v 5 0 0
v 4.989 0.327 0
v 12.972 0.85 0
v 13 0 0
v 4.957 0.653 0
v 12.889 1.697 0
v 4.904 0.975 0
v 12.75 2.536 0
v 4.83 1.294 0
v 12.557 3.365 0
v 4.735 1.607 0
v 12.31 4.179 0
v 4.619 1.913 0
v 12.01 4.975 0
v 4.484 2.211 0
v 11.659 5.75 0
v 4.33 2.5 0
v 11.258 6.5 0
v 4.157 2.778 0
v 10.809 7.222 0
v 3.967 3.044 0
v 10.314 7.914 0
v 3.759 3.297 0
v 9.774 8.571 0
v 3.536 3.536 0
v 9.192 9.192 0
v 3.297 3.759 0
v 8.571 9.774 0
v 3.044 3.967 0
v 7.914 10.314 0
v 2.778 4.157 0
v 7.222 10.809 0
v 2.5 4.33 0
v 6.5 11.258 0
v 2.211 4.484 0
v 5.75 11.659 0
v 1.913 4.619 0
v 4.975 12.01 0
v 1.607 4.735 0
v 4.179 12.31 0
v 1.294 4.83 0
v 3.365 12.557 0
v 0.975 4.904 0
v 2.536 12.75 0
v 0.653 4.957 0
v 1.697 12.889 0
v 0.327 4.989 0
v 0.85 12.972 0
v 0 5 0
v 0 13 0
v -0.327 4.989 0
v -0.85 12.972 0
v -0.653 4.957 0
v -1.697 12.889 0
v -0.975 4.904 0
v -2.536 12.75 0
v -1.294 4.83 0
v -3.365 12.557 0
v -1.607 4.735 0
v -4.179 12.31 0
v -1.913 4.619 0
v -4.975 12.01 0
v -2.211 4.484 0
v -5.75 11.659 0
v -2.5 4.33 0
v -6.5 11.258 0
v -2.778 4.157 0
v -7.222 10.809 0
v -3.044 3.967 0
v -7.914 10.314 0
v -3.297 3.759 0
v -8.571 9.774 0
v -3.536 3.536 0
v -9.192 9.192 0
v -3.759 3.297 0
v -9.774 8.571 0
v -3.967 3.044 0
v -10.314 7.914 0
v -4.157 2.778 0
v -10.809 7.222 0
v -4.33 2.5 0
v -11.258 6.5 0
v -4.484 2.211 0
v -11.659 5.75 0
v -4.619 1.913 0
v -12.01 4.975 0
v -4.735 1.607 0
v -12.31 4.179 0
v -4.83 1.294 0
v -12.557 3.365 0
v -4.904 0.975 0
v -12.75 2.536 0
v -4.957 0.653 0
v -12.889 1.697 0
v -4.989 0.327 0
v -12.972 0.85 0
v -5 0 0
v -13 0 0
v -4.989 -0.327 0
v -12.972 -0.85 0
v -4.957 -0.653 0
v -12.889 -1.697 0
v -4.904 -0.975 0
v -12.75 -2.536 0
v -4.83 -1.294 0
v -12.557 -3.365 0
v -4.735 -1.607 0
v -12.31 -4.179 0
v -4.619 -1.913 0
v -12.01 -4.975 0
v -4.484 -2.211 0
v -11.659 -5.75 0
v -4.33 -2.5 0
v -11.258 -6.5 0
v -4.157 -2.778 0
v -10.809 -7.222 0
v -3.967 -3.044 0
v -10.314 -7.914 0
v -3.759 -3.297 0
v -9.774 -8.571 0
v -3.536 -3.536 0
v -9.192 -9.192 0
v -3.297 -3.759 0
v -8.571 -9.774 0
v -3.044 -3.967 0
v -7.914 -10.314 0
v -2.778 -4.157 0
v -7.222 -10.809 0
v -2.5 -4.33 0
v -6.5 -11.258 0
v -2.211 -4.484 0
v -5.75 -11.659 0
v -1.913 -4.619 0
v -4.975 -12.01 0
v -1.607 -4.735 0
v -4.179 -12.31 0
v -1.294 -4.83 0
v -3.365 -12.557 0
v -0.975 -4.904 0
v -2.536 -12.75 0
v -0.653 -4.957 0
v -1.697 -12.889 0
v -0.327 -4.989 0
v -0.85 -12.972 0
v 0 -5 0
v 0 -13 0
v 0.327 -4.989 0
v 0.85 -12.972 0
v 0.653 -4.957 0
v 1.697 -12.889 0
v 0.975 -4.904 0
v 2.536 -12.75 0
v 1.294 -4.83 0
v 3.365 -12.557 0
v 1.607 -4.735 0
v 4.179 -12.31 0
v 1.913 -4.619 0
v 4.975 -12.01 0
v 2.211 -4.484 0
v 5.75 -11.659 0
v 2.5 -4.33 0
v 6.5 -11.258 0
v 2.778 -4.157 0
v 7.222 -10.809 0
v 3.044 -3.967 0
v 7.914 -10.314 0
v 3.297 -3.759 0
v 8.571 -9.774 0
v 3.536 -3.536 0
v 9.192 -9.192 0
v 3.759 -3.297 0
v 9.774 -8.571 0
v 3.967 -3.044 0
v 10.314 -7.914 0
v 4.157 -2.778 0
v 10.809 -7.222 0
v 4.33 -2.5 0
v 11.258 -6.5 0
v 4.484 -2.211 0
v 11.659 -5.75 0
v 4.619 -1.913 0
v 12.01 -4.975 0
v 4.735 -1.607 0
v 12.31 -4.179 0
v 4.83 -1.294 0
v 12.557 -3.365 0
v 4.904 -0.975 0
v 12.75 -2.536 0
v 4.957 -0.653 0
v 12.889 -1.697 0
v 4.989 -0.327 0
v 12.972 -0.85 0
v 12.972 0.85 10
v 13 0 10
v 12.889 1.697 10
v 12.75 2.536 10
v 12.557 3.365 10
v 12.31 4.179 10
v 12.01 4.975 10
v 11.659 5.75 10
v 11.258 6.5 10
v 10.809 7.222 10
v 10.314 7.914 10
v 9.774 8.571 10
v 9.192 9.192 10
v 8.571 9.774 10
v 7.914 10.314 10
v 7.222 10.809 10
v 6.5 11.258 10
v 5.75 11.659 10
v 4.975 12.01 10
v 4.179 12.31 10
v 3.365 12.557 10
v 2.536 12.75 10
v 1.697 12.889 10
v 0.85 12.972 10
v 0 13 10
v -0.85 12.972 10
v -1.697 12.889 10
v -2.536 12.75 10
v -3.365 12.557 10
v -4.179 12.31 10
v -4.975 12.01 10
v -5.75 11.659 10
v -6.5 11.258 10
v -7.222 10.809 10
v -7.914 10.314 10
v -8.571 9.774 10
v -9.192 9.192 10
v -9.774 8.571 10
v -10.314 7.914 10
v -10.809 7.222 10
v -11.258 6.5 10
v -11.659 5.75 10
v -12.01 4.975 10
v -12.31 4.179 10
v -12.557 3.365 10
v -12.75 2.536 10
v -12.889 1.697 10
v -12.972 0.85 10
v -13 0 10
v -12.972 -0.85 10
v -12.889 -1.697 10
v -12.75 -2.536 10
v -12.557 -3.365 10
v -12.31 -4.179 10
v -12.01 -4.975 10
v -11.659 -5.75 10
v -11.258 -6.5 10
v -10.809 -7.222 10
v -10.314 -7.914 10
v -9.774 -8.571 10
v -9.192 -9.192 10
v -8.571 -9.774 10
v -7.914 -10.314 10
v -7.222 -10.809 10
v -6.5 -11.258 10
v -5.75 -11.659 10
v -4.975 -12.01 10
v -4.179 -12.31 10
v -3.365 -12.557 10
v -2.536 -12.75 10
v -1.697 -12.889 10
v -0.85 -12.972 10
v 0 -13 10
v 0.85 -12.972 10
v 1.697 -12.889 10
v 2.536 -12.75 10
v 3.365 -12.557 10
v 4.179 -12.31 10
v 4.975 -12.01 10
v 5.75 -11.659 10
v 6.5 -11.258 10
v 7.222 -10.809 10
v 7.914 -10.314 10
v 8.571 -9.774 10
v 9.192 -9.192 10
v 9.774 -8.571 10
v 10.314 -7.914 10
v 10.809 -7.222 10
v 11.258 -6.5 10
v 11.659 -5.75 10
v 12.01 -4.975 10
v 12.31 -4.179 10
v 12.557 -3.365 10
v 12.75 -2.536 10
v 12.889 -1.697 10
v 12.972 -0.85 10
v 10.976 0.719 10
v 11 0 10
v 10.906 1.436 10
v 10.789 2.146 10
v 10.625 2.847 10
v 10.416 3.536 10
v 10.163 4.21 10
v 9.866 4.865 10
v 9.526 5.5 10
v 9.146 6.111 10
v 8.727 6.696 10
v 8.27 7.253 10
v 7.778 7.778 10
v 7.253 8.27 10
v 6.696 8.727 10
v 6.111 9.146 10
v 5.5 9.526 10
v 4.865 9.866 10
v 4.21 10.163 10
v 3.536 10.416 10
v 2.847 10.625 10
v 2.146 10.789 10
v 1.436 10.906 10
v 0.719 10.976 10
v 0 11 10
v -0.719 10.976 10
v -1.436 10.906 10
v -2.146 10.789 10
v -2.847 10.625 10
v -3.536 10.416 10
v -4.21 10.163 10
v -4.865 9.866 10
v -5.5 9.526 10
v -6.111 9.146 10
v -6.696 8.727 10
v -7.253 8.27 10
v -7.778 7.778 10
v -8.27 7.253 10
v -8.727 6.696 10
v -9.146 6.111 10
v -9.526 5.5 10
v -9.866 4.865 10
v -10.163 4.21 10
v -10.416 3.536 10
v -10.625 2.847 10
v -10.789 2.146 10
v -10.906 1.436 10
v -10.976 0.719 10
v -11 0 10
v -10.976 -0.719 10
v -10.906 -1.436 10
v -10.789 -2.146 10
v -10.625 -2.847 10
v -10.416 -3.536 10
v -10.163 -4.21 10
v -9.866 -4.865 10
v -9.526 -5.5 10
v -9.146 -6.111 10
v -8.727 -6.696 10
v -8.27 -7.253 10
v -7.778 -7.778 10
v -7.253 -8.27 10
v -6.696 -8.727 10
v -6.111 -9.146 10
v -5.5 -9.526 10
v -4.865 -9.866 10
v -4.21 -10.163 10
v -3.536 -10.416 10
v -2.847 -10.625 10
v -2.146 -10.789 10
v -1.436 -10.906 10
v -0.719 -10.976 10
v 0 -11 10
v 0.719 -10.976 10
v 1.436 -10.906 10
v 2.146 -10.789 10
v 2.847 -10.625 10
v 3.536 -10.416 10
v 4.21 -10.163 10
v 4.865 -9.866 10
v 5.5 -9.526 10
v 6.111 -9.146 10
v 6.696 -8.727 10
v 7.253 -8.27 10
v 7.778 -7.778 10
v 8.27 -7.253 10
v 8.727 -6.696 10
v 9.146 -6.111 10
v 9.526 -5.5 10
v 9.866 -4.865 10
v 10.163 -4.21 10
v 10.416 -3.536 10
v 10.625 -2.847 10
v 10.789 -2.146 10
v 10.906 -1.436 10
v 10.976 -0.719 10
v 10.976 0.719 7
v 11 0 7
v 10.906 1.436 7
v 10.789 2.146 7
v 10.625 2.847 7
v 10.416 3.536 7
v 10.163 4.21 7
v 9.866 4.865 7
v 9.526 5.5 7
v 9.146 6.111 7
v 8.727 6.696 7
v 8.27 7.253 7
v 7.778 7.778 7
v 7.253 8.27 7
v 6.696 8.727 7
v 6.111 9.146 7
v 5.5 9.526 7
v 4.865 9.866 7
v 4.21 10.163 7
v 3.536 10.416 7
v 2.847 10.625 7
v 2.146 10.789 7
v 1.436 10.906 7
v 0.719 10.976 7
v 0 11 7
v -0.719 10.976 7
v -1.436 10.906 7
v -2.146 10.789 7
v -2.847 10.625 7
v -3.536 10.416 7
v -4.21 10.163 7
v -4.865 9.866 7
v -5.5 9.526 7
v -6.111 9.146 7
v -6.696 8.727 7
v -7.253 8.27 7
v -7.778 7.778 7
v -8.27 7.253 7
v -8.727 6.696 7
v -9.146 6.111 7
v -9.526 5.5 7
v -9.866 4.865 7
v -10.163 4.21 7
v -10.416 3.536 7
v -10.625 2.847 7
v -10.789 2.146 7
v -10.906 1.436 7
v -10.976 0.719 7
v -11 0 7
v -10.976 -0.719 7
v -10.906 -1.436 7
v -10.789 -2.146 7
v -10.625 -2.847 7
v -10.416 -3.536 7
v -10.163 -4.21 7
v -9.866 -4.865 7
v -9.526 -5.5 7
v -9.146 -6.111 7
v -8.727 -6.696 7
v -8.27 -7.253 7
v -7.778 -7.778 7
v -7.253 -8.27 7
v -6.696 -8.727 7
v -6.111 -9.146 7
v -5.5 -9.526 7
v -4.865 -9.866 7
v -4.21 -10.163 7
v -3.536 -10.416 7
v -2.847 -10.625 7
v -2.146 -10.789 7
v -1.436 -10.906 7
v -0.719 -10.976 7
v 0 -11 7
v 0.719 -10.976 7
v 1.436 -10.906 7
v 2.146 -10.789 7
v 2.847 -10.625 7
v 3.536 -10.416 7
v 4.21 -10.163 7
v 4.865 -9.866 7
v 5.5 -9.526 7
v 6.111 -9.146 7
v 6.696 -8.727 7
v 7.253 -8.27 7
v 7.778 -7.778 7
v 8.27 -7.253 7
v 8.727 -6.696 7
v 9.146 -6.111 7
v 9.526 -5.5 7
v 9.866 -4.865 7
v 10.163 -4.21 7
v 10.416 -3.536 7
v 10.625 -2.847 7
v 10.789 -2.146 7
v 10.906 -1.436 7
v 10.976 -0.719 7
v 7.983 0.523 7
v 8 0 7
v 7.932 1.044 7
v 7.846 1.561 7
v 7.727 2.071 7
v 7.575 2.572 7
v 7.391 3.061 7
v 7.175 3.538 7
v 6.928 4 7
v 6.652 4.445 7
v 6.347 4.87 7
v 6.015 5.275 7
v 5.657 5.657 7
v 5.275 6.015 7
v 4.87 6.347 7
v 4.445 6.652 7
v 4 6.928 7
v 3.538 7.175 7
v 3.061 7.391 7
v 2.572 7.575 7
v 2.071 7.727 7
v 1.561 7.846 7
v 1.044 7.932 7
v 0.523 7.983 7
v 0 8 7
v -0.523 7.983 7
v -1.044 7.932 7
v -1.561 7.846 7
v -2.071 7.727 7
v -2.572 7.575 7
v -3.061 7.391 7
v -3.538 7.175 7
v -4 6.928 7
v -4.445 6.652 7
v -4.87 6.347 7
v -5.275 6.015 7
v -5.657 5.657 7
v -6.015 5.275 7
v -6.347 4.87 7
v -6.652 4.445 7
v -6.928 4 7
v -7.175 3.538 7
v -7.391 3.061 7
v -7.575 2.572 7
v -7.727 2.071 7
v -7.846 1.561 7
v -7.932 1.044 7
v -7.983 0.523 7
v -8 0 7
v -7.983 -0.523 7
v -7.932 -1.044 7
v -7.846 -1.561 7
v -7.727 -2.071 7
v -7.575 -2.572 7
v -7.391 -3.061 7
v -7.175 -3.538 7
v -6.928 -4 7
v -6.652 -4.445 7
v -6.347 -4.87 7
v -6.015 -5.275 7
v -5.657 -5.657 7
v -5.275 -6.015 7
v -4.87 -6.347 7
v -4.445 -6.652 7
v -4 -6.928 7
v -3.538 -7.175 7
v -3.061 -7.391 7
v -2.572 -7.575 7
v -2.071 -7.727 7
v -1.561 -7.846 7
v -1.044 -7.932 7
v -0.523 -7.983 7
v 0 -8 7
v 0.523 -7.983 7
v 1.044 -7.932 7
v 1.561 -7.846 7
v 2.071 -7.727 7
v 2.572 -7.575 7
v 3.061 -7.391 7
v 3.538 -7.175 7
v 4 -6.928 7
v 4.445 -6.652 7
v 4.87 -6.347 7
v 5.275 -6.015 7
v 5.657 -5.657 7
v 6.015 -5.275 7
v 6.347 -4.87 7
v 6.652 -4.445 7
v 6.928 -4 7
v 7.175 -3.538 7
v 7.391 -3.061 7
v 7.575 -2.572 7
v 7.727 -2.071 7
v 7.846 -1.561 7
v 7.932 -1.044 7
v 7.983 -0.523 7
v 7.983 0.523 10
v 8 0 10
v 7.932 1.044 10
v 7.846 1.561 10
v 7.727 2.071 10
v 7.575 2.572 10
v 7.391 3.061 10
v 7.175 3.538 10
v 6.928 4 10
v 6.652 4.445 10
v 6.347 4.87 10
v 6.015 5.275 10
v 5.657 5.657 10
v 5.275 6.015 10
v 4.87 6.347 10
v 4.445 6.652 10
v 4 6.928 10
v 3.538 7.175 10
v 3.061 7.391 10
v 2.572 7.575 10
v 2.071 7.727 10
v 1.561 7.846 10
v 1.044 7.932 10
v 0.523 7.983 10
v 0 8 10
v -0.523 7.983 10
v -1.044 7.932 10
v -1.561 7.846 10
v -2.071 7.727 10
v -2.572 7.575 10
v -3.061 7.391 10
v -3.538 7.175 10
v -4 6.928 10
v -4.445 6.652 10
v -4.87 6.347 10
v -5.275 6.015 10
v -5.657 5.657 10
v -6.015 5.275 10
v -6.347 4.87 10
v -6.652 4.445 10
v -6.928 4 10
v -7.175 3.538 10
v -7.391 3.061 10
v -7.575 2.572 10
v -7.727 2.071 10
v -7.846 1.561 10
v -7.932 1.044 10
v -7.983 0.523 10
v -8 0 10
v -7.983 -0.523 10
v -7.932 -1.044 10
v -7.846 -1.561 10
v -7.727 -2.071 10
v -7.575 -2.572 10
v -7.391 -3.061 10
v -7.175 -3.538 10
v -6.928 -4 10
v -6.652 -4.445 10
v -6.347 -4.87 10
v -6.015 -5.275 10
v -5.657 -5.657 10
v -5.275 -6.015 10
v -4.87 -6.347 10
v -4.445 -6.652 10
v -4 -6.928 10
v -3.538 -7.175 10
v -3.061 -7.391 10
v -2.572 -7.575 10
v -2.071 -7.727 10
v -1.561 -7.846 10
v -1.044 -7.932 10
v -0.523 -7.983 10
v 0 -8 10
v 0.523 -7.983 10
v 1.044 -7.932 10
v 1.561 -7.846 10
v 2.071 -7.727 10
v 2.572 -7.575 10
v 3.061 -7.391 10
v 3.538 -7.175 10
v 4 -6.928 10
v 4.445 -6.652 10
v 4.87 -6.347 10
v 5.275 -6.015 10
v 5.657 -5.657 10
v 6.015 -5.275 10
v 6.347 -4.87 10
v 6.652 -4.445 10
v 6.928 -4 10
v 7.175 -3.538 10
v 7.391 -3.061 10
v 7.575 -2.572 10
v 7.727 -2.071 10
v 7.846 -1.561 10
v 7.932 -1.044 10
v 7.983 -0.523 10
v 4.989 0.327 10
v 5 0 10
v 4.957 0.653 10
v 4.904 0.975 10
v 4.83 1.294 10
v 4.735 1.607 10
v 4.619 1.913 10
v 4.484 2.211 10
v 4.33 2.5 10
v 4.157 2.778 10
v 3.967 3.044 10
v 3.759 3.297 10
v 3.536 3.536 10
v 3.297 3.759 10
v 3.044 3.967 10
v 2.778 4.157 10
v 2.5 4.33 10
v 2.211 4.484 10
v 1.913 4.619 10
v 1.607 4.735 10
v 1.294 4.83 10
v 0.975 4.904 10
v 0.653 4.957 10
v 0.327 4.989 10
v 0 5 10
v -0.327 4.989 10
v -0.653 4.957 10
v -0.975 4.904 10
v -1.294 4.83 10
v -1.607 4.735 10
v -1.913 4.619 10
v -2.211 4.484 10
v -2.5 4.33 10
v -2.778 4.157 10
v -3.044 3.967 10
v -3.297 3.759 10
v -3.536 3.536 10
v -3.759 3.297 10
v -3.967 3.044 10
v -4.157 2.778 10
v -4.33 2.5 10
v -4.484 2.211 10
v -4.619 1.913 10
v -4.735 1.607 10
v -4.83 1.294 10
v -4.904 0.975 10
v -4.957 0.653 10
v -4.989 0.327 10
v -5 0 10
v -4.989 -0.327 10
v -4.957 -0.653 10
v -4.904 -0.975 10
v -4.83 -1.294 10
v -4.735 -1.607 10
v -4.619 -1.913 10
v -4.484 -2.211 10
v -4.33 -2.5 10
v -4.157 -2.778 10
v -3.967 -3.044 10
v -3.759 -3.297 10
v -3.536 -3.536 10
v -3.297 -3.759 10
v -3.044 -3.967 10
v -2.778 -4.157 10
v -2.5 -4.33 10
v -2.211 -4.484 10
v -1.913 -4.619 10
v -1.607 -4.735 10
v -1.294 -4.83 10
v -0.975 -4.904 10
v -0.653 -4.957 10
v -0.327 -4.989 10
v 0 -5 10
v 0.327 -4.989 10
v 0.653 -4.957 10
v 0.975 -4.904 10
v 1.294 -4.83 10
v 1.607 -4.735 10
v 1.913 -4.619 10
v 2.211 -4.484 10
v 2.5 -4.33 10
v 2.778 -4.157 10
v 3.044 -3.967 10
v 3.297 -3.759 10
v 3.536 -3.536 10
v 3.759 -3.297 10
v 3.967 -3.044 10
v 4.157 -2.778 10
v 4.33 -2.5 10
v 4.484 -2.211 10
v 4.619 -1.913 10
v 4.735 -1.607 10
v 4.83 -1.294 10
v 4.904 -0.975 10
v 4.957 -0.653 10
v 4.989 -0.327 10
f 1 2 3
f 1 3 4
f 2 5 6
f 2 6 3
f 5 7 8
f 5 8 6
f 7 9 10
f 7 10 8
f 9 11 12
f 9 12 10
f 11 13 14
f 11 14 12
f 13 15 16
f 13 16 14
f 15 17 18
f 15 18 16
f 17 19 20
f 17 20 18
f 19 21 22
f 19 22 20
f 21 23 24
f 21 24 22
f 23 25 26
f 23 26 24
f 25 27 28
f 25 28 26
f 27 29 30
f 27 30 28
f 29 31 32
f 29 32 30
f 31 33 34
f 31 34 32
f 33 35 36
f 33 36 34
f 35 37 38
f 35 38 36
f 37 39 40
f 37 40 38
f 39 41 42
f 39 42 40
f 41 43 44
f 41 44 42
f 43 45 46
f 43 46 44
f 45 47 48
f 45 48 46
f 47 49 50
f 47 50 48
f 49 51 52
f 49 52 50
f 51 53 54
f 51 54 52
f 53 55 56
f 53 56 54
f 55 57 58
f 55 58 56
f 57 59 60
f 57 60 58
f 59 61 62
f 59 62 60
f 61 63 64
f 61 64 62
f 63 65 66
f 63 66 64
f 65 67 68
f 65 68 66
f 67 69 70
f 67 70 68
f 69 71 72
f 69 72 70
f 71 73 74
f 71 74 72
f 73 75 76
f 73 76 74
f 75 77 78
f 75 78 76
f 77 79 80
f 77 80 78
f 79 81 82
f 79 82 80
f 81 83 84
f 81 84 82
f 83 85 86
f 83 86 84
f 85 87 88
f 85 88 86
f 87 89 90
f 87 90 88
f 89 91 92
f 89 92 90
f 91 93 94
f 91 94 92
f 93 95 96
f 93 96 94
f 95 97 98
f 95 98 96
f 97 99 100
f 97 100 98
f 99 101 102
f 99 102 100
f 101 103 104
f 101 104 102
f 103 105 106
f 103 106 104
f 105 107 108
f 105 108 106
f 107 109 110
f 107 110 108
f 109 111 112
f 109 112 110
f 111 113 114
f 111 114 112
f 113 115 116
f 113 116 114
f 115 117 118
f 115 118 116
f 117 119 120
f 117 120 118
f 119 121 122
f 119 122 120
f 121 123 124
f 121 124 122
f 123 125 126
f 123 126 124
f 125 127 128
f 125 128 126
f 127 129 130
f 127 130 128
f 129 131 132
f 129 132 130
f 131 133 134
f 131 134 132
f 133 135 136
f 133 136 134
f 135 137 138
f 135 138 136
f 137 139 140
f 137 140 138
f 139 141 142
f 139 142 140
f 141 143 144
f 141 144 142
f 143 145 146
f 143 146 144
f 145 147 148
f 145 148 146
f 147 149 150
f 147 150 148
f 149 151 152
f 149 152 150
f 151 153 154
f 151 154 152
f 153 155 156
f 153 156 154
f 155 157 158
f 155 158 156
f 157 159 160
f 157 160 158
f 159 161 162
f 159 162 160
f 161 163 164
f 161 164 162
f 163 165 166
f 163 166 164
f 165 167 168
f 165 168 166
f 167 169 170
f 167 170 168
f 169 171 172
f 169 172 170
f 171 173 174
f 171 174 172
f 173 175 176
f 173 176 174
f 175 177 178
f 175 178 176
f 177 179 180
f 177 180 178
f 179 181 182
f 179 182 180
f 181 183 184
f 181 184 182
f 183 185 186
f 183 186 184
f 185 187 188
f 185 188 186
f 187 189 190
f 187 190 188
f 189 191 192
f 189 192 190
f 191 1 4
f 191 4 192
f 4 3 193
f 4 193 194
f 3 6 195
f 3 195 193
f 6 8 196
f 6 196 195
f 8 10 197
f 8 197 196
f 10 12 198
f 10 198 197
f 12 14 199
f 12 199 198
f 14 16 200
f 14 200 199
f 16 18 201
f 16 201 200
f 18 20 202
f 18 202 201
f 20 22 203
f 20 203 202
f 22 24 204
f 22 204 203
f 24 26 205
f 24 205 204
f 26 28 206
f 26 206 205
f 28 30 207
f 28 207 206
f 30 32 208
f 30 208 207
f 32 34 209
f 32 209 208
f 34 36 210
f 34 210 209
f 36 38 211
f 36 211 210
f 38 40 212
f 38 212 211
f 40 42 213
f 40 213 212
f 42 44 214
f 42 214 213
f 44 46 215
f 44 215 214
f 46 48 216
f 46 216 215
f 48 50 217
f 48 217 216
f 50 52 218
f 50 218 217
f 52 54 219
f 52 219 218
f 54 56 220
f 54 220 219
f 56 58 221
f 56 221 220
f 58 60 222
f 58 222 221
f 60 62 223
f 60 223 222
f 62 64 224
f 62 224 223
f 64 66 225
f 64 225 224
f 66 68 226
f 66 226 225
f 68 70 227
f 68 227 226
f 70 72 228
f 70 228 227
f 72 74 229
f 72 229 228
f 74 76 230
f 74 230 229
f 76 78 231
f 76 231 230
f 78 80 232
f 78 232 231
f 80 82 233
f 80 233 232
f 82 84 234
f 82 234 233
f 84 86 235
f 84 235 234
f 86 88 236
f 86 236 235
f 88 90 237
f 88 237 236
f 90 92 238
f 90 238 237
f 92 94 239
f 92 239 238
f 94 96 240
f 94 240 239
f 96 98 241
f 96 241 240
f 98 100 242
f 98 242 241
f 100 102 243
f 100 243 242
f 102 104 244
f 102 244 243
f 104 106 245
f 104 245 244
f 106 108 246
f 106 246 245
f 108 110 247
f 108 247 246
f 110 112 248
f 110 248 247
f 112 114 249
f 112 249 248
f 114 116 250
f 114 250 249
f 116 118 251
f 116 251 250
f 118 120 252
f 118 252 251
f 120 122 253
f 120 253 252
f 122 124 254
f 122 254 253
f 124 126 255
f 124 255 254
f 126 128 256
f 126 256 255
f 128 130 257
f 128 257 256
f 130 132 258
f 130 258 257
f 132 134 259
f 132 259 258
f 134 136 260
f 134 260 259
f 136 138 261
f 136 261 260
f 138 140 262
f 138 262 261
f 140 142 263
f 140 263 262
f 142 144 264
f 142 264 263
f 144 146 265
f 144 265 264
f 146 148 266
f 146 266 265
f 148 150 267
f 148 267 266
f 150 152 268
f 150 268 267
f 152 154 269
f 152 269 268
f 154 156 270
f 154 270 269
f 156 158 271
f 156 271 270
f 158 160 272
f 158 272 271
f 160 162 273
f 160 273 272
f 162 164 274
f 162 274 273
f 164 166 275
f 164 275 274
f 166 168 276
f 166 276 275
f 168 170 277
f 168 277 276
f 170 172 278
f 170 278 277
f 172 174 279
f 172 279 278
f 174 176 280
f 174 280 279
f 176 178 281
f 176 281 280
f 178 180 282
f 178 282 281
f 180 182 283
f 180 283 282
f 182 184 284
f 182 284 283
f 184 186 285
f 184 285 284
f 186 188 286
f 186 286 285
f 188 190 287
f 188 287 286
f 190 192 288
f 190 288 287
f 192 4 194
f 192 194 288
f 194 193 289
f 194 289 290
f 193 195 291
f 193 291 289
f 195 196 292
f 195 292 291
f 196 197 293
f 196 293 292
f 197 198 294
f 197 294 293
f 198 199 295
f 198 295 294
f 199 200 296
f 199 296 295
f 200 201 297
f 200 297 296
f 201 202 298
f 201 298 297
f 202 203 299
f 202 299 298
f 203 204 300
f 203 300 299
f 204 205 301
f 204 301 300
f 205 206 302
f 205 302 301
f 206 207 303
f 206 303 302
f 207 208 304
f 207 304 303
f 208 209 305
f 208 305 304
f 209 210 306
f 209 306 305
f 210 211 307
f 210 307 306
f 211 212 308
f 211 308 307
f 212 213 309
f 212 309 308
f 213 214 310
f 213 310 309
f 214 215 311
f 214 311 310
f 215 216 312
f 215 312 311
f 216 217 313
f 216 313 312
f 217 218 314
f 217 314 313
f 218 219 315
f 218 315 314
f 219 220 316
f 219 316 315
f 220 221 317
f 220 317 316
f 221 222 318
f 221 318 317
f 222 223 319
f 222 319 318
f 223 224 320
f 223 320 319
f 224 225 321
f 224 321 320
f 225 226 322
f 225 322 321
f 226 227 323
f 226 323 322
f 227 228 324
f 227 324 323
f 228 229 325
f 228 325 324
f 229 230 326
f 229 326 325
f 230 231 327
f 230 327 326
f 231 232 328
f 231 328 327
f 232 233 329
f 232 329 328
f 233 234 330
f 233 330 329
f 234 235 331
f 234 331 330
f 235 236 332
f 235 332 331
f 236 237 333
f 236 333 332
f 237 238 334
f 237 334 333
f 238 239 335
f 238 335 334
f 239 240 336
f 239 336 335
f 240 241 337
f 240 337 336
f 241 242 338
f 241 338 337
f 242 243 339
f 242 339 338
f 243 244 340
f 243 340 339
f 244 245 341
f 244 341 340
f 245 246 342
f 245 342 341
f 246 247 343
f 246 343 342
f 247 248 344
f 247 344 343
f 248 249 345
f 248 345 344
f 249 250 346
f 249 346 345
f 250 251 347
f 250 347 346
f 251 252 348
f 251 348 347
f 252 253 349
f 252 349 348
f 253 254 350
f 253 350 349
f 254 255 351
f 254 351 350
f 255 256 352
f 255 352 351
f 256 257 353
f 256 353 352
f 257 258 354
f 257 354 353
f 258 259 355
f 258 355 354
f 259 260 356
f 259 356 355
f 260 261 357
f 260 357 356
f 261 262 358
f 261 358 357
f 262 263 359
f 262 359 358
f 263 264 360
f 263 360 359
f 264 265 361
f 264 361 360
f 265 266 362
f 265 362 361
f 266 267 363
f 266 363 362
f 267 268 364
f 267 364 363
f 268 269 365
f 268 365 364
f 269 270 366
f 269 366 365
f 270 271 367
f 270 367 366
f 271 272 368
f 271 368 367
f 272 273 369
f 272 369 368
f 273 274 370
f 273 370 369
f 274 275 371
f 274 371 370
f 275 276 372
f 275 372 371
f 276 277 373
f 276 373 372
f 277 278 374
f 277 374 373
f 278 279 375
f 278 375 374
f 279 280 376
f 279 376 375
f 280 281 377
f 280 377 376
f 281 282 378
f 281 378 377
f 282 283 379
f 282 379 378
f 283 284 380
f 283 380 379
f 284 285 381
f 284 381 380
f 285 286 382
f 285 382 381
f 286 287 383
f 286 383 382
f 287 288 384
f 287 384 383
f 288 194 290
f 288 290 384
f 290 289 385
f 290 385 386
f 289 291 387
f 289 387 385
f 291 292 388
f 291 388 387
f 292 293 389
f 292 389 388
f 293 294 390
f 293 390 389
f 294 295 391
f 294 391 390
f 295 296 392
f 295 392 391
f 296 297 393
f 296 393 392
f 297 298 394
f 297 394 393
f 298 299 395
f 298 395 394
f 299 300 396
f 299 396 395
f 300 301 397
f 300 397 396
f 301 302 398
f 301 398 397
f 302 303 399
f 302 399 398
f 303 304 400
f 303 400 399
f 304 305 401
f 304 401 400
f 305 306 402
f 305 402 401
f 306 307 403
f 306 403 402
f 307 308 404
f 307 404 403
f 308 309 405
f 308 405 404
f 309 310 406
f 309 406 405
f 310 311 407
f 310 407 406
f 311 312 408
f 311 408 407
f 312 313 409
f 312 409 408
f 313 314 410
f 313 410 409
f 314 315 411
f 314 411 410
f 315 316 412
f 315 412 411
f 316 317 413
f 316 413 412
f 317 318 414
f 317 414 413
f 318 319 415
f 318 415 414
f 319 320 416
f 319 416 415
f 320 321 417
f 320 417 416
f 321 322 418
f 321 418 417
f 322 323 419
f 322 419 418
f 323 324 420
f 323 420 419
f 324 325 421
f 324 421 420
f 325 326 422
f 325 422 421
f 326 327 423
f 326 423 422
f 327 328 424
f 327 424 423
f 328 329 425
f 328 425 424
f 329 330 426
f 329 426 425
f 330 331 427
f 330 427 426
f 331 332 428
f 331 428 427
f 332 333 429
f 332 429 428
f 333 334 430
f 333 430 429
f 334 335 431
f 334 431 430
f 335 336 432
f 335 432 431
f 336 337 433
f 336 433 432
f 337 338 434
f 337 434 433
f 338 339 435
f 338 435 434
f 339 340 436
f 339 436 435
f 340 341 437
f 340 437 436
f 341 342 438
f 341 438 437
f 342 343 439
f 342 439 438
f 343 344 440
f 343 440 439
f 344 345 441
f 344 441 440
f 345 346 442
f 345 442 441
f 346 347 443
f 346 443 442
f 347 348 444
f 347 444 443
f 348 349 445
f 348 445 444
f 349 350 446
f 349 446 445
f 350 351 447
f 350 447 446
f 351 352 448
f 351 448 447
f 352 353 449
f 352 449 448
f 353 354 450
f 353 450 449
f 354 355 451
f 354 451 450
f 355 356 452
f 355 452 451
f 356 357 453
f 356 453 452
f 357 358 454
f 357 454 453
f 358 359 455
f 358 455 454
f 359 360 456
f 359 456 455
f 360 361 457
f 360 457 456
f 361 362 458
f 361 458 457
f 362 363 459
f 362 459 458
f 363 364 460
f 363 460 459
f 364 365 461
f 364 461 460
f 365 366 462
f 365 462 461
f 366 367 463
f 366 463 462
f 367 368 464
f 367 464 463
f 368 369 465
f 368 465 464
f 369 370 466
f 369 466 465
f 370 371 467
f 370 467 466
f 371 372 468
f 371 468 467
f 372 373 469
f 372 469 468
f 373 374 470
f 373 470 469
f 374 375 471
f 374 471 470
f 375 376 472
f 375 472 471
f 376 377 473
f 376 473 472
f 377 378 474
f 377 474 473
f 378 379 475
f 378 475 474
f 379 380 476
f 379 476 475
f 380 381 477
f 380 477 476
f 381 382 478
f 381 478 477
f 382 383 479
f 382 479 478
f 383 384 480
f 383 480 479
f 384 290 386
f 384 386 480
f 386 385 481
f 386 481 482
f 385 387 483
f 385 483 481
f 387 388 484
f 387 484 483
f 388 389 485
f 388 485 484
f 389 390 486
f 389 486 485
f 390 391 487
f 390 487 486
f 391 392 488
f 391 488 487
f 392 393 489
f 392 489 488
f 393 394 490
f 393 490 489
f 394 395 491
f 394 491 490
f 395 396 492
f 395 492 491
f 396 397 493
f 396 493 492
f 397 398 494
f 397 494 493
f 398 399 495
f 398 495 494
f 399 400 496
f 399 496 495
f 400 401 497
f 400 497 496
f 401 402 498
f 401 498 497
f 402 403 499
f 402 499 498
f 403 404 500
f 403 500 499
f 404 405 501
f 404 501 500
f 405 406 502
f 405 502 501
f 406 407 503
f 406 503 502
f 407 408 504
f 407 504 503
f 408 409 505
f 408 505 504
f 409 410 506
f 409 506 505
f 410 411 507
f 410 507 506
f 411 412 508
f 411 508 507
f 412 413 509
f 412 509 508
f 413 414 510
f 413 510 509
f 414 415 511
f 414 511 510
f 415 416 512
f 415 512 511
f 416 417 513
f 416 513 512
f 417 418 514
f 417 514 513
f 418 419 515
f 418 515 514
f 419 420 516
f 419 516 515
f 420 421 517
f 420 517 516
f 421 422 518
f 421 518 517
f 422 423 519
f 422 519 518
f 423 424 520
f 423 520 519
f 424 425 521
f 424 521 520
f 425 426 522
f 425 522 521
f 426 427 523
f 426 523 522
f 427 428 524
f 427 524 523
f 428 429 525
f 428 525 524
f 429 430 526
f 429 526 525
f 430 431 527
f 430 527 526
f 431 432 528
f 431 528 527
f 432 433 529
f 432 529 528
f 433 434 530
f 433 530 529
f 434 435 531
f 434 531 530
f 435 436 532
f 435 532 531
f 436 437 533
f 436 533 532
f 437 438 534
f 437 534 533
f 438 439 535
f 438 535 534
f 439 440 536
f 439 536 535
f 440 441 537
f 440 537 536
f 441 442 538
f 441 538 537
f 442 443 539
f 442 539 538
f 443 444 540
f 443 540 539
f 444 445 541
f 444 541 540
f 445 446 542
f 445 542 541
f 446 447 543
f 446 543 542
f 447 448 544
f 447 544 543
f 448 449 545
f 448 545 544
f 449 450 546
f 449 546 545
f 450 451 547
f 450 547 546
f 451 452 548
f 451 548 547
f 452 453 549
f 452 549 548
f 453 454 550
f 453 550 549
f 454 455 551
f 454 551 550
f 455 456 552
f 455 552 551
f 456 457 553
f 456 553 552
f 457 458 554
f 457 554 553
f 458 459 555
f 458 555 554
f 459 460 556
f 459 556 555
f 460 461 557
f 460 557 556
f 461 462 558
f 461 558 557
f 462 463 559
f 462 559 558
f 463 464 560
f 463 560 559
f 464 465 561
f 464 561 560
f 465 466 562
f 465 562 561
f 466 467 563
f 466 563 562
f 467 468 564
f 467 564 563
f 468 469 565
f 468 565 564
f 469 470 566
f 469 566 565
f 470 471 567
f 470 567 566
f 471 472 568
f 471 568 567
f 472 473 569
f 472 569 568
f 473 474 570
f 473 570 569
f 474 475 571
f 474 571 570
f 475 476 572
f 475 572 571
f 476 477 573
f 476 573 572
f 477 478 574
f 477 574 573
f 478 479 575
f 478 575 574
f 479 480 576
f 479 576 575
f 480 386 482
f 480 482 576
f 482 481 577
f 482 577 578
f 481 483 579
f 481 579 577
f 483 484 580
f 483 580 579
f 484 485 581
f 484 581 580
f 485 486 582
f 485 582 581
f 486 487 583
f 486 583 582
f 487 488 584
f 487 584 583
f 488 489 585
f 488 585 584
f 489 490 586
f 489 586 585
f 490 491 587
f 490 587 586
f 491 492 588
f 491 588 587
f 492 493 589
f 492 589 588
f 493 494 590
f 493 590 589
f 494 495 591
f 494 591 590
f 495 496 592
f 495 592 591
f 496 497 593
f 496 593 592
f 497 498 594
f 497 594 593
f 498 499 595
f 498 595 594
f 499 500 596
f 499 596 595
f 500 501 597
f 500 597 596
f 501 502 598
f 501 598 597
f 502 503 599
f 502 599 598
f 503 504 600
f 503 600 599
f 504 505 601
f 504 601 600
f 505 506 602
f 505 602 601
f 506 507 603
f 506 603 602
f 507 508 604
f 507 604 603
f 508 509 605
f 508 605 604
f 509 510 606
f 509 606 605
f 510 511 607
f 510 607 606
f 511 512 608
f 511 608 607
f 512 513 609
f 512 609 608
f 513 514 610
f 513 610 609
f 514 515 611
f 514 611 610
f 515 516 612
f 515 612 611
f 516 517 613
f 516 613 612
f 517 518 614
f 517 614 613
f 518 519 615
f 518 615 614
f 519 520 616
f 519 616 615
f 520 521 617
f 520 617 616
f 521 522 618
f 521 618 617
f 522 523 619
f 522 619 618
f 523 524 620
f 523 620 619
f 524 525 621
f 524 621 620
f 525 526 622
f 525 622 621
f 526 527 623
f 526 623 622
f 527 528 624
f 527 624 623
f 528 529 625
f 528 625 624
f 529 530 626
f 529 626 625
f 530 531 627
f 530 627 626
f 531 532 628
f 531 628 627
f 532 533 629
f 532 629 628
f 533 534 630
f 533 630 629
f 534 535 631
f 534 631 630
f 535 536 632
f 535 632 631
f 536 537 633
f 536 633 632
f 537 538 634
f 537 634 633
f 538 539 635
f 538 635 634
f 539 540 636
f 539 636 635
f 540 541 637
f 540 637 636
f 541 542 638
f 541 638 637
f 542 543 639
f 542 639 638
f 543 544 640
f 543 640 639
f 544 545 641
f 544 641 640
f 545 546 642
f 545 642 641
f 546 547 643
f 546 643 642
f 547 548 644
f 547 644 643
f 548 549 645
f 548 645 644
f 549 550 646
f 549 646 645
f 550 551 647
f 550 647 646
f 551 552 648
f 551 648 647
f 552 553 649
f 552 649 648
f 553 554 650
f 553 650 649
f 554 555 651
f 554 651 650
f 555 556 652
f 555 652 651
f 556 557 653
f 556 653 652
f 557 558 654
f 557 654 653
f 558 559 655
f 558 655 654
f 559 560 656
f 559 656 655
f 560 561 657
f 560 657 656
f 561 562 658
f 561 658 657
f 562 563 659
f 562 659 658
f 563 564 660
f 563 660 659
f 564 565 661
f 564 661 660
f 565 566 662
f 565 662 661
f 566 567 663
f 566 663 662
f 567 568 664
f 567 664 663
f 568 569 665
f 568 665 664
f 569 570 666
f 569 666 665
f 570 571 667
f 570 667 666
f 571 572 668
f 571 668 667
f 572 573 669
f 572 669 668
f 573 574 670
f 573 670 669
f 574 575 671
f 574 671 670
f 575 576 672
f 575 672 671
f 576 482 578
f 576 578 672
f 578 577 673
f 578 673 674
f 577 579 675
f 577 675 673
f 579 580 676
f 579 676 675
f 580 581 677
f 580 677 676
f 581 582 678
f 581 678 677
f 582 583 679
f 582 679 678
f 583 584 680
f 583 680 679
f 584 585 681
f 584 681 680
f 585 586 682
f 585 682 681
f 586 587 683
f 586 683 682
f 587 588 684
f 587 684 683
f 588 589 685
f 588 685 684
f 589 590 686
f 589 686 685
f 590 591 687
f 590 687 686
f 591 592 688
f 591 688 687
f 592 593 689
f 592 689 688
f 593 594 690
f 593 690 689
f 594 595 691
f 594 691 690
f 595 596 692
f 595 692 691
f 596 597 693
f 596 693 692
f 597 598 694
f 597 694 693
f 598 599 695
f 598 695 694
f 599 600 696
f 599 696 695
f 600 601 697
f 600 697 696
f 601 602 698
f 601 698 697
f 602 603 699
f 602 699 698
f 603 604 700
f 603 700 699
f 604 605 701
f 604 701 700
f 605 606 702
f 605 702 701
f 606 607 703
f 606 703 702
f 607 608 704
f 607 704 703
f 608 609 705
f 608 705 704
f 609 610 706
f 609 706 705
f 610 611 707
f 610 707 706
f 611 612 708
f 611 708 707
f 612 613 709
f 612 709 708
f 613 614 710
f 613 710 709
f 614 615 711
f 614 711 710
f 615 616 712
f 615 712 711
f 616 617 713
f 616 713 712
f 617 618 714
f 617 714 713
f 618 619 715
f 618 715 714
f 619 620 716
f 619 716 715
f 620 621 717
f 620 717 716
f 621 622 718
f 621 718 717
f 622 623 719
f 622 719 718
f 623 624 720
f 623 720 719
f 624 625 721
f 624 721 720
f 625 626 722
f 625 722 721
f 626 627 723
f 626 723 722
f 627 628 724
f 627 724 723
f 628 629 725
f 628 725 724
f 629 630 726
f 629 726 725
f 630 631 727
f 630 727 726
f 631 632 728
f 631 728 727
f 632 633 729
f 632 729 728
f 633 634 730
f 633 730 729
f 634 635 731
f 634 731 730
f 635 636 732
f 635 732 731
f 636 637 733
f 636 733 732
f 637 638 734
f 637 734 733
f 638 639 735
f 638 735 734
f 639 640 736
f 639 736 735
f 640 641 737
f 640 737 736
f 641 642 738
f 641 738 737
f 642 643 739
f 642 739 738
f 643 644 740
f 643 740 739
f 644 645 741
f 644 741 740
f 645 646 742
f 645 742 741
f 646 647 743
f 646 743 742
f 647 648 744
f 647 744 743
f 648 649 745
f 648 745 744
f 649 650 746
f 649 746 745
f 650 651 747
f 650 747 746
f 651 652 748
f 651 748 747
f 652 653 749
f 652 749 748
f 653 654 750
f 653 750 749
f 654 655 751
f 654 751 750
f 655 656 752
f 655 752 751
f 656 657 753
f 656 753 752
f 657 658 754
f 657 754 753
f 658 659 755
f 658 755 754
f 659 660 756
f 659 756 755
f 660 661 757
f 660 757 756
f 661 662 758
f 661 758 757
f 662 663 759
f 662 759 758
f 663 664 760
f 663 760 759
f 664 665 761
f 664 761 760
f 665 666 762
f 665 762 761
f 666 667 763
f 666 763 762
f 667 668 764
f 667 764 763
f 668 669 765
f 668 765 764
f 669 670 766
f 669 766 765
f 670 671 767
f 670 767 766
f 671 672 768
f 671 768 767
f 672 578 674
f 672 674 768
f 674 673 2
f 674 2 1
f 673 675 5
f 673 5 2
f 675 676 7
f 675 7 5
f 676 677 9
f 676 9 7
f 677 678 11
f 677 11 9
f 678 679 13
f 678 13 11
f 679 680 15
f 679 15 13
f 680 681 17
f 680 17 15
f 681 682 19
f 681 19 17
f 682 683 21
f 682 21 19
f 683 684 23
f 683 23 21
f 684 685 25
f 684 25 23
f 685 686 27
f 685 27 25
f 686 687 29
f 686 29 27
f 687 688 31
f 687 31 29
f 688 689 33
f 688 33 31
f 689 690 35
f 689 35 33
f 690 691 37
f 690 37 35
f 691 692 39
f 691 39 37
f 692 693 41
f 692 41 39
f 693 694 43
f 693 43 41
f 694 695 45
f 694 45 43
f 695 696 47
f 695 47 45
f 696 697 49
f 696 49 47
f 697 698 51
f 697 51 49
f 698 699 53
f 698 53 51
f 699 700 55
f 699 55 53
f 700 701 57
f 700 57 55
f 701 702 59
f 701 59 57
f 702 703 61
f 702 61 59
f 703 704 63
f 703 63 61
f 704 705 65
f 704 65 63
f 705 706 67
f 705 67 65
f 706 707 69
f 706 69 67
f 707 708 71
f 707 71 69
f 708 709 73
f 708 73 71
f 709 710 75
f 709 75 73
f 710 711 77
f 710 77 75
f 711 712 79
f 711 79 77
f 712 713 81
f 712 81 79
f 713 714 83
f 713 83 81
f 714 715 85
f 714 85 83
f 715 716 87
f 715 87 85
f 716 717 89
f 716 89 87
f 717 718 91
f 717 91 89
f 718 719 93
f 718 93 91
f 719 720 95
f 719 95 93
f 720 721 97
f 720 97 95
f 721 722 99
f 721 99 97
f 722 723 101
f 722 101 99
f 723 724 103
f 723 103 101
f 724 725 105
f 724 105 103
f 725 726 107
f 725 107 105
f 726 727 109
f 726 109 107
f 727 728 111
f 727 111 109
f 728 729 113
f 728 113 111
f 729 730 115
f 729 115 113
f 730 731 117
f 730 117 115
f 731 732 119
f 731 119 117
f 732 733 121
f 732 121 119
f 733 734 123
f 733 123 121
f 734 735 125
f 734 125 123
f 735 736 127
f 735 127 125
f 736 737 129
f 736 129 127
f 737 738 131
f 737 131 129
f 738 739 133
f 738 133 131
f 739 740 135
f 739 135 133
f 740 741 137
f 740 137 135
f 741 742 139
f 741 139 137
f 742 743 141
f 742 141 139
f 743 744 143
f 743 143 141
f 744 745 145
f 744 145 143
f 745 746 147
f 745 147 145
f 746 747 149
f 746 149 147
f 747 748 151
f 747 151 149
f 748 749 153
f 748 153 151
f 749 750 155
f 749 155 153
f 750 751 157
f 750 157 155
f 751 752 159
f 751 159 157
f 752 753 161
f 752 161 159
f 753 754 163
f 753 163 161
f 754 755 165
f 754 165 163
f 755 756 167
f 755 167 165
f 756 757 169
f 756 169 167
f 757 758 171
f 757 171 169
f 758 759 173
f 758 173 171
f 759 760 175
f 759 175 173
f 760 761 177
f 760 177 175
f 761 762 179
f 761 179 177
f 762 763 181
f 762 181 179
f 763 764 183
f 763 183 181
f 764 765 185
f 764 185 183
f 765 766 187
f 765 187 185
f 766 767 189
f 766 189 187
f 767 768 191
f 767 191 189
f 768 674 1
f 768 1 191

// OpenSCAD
// Original MechIntel educational model. CC0-1.0. Units: mm.
// Not a standardized or load-rated component.
$fn=96;
// Section points: [radius, height], mm. Edit to change the profile.
section=[[5, 0], [13, 0], [13, 10], [11, 10], [11, 7], [8, 7], [8, 10], [5, 10]];
rotate_extrude($fn=96) polygon(points=section);
